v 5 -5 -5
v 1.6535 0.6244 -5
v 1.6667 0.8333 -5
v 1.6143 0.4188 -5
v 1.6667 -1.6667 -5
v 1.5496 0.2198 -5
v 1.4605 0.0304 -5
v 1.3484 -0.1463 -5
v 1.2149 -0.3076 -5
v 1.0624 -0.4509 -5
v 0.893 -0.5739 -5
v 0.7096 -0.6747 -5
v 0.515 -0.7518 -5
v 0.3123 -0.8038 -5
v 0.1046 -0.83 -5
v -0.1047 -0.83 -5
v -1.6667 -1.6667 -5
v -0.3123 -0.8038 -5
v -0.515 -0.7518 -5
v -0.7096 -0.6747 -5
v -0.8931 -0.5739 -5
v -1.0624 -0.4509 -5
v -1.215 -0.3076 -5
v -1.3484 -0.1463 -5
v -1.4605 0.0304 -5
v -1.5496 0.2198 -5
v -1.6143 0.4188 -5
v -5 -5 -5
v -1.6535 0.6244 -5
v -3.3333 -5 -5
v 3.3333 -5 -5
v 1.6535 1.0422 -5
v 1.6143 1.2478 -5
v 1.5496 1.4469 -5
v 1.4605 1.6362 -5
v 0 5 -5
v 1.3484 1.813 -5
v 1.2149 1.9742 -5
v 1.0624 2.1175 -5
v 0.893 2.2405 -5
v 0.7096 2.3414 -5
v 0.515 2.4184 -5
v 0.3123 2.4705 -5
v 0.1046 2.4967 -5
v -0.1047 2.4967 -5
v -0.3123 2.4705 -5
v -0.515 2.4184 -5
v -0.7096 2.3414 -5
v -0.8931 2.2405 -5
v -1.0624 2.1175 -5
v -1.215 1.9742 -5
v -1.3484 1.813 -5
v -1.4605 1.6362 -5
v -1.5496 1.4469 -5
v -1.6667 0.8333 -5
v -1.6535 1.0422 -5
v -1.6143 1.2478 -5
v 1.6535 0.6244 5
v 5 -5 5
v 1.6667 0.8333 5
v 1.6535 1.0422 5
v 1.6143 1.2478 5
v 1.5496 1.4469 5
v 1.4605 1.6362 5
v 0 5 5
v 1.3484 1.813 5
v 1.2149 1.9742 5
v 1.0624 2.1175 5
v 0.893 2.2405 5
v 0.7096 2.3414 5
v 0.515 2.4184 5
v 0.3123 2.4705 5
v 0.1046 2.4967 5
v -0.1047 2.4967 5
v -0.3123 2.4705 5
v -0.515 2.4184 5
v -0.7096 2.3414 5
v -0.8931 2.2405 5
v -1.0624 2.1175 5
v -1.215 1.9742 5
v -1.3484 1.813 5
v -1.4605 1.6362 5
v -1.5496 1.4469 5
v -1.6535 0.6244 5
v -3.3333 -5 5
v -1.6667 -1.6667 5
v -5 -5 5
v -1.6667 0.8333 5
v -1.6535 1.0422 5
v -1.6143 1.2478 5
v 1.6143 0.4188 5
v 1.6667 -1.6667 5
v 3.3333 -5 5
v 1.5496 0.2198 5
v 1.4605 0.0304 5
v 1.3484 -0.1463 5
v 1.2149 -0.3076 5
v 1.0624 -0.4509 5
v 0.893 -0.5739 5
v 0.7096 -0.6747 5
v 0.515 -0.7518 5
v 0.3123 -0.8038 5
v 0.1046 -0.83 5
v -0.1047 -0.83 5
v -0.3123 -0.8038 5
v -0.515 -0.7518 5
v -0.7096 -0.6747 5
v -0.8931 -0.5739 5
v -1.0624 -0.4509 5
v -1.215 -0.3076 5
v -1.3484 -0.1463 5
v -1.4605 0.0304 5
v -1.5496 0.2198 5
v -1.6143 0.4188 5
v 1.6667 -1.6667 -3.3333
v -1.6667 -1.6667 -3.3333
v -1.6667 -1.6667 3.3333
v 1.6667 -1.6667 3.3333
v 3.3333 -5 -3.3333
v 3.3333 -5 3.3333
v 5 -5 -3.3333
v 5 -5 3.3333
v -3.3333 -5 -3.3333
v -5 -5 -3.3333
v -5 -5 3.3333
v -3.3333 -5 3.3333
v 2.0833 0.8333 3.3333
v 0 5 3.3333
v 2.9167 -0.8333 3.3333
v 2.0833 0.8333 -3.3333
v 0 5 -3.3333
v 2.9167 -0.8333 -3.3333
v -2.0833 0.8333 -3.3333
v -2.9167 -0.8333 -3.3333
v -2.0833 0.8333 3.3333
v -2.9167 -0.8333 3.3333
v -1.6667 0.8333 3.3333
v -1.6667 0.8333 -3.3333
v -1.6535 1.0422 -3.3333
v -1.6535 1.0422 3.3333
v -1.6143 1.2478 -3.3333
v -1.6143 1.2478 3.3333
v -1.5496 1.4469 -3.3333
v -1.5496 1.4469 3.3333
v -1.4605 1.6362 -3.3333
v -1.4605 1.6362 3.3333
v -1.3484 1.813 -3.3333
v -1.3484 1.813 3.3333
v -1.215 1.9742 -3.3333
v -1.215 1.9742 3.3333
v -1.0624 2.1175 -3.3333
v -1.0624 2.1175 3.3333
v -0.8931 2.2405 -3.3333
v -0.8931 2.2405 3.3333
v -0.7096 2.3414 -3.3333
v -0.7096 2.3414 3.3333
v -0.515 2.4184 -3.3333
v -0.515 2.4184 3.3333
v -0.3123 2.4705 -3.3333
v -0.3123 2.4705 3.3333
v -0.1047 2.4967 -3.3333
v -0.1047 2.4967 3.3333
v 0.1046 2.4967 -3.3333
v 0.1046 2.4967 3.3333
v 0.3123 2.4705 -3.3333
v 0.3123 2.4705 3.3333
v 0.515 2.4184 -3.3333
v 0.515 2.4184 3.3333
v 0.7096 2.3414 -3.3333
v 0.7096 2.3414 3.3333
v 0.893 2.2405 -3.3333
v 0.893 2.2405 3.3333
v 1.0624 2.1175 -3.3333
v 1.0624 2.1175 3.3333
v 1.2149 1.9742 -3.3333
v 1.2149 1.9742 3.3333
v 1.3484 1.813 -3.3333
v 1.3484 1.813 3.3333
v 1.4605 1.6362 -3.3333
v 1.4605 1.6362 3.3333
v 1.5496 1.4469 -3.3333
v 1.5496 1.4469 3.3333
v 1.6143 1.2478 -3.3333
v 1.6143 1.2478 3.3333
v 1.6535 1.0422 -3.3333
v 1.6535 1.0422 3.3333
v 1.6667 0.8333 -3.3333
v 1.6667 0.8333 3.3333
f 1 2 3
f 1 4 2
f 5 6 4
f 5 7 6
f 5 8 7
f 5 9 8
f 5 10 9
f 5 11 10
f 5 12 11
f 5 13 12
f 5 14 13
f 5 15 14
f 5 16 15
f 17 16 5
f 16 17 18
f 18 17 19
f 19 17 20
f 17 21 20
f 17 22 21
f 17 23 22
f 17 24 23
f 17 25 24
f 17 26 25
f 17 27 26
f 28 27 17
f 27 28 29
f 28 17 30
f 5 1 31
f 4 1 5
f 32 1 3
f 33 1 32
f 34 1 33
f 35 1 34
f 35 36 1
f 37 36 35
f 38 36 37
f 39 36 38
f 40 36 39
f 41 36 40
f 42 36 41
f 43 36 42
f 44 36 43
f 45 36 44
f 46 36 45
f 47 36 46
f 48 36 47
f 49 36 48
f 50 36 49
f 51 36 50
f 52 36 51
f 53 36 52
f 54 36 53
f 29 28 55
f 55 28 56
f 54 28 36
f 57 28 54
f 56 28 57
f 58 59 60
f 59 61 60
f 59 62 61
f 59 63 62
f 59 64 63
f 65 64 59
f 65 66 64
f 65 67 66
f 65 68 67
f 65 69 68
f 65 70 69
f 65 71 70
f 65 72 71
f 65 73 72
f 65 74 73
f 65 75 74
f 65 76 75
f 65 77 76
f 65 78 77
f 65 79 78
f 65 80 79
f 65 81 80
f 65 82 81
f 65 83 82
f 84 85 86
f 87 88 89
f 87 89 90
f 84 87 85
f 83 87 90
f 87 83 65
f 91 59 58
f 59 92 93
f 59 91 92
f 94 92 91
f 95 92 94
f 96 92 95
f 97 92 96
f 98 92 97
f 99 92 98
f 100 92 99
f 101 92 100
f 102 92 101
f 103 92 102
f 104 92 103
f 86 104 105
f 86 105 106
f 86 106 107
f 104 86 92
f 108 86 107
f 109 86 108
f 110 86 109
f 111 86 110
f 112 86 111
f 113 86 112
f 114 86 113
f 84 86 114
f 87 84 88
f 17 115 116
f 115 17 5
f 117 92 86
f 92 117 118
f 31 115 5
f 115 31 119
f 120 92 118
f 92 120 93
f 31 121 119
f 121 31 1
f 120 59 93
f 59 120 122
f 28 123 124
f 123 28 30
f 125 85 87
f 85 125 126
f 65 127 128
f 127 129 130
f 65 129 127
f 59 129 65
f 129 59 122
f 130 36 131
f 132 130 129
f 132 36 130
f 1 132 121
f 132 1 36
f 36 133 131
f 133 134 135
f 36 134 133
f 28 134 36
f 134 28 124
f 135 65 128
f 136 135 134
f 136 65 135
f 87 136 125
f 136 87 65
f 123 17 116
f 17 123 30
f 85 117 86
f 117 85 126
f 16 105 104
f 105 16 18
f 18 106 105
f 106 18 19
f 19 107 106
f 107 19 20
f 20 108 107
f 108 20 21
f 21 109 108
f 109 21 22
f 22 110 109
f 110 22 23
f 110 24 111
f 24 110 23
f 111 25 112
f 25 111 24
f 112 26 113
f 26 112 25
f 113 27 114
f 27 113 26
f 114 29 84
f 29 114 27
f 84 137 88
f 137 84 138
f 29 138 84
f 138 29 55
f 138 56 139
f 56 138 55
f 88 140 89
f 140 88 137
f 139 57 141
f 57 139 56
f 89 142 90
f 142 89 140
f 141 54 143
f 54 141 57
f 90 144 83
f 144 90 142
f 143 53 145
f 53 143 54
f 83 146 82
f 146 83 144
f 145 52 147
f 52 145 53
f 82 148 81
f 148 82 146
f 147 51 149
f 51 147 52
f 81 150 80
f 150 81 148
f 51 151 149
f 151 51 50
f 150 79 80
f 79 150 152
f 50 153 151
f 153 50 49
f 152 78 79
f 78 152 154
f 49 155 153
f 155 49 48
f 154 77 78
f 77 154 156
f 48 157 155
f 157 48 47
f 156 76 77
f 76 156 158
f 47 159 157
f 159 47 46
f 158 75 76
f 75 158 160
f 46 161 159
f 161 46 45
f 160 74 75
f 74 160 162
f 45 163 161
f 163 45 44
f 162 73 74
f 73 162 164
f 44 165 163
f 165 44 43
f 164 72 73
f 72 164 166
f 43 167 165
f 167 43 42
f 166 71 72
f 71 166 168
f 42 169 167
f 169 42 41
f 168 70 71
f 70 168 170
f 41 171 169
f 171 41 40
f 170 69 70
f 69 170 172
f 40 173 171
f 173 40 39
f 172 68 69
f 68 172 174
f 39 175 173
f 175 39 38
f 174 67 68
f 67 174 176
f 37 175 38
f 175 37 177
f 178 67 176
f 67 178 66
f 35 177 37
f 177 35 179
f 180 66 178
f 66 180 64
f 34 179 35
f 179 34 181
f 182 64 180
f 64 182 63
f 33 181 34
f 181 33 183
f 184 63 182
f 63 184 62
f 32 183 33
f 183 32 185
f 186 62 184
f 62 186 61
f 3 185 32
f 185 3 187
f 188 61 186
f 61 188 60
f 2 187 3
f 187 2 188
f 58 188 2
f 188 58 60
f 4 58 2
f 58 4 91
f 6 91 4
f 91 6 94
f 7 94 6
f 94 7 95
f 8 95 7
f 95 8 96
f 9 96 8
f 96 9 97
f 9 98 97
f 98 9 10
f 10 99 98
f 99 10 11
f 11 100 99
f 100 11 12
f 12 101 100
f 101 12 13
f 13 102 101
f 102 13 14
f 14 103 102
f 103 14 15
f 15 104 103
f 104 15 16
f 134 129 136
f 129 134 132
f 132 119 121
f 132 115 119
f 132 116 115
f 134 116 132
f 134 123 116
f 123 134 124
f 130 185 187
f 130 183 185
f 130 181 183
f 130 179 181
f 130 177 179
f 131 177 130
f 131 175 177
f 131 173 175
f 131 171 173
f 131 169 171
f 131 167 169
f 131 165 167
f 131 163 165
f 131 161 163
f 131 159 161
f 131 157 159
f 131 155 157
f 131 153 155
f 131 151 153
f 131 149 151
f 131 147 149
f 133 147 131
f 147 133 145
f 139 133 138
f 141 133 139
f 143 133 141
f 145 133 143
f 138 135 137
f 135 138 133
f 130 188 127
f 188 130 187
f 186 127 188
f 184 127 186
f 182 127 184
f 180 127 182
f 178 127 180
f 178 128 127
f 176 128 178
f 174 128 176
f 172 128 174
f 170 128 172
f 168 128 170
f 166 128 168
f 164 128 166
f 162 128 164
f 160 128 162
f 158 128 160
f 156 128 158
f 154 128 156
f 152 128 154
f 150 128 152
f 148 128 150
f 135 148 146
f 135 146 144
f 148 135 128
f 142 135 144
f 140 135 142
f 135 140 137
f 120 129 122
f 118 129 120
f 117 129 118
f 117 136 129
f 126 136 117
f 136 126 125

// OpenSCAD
// Generated by SolidPython 1.1.3 on 2025-02-25 01:33:36
$fn=50;


intersection() {
	translate(v = [-5.0000000000, -5.0000000000, -5.0000000000]) {
		linear_extrude(height = 10) {
			difference() {
				polygon(points = [[0, 0], [5.0000000000, 10], [10, 0], [8.3333333333, 0], [6.6666666667, 3.3333333333], [3.3333333333, 3.3333333333], [1.6666666667, 0]]);
				translate(v = [5.0000000000, 5.8333333333]) {
					circle(r = 1.6666666667);
				}
			}
		}
	}
	rotate(a = 90, v = [0, 1, 0]) {
		translate(v = [-5.0000000000, -5.0000000000, -5.0000000000]) {
			linear_extrude(height = 10) {
				polygon(points = [[0, 0], [0, 10], [1.6666666667, 10], [1.6666666667, 5.8333333333], [8.3333333333, 5.8333333333], [8.3333333333, 10], [10, 10], [10, 0], [8.3333333333, 0], [8.3333333333, 4.1666666667], [1.6666666667, 4.1666666667], [1.6666666667, 0]]);
			}
		}
	}
}
/***********************************************
*********      SolidPython code:      **********
************************************************
 
from solid import *
from solid.utils import *

import math
import matplotlib.pyplot as plt
import subprocess
import os
import grok_letters as grok
import grok_think as grok_think
import letters as let
import o1_letters as o1

def arc_points(radius, start_angle, end_angle, center=[0,0], num_points=50):
    angles = [start_angle + i * (end_angle - start_angle) / (num_points - 1)
              for i in range(num_points)]
    points = [
        (center[0] + radius * math.cos(math.radians(angle)),
         center[1] + radius * math.sin(math.radians(angle)))
        for angle in angles
    ]
    return points

class Hole:
    def __init__(self, radius, x, y):
        """
        Hole defined by:
        :param x: x dimension for center point of the circle as a ratio of letter height
        :param y: y dimension for center point of the circle as a ratio of letter height
        :param radius: radius of circle as a ratio of letter height
        """
        self.x = x
        self.y = y
        self.radius = radius

class Letter2D:
    def __init__(self, letter, scale):
        self.letter = letter
        self.scale = scale
        self.shape = self.generate()
    
    def get_letter_points(self):
        points = getattr(let, self.letter)
        # points = getattr(o1, self.letter)
        # points = getattr(grok, self.letter)
        scaled_points = [(point[0] * self.scale, point[1] * self.scale) for point in points]
        return scaled_points

    def get_letter_holes(self):
        holes = []
        if self.letter == "A": 
            holes = [Hole(1/6, 1/2, 7/12)]
        if self.letter == "B":
            holes = [Hole(1/6, 1/2, 3/4), Hole(1/6, 1/2, 1/4)]
        if self.letter == "D":
            holes = [Hole(1/3, 1/2, 1/2)]

        scaled_holes = [Hole(hole.radius*self.scale, hole.x*self.scale, hole.y*self.scale) for hole in holes]
        return scaled_holes

    
    def generate(self):
        shape = polygon(points=self.get_letter_points())
        holes = self.get_letter_holes()

        if holes:
            for hole in holes:
                circle_hole = circle(r=hole.radius)
                positioned_hole = translate([hole.x, hole.y])(circle_hole)
                shape = difference()(shape, positioned_hole)
        return shape
    

    def render(self):
        scad_render_to_file(self.shape, f"output/{self.name}.scad", file_header='$fn=50;')
        subprocess.run(["C:\\Program Files\\OpenSCAD\\openscad.exe", "-o", f"output\\{self.name}.stl", f"output\\{self.name}.scad"])


class TwoLetter3D:
    def __init__(self, height, letterA, letterB=None):
        self.height = height
        self.letterA = letterA
        self.letterB = letterB
    

    def generate_3d_letter(self, letter):
        letter = letter.upper()
        # TODO: add catch here for is letter is not a letter
        shape = Letter2D(letter, self.height).generate()
        shape_3d = linear_extrude(height=self.height)(shape)
        centered_shape_3d = translate([-self.height/2, -self.height/2, -self.height/2])(shape_3d)
        return centered_shape_3d


    def render(self):
        letterA3D = self.generate_3d_letter(self.letterA)

        if self.letterB:
            letterB3D = self.generate_3d_letter(self.letterB)
            letterB3D = rotate(a=90, v=[0,1,0])(letterB3D)

            combined = intersection()(letterA3D, letterB3D)
            file_name = self.letterA + self.letterB
            scad_render_to_file(combined, f"output/{file_name}.scad", file_header='$fn=50;')
            subprocess.run(["C:\\Program Files\\OpenSCAD\\openscad.exe", "-o", f"output\\{file_name}.stl", f"output\\{file_name}.scad"])
            return
        else:
            # file_name = "o1_" + self.letterA
            # file_name = "grok_think_" + self.letterA
            file_name = self.letterA
            # file_name = "grok_" + self.letterA
            scad_render_to_file(letterA3D, f"output/{file_name}.scad", file_header='$fn=50;')
            subprocess.run(["C:\\Program Files\\OpenSCAD\\openscad.exe", "-o", f"output\\{file_name}.stl", f"output\\{file_name}.scad"])
            # subprocess.run(["openscad", "-o", f"output\\{file_name}.png", f"output\\{file_name}.scad", "--imgsize=800,600", "--autocenter"])
            subprocess.run(["openscad", "-o", f"output\\{file_name}.png", f"output\\{file_name}.scad", "--imgsize=800,600", "--camera=0,0,30,0,0,0", "--viewall", "--autocenter", "--projection=o"])
            os.remove(f"output/{file_name}.scad")
            return
                


if __name__ == "__main__":
    os.makedirs("output", exist_ok=True)

    # # Generate a letter
    # letter = input()
    # shape = TwoLetter3D(10, letter)
    # shape.render()
    
    letters = [chr(x) for x in range(ord('A'), ord('j') + 1)]

    # Generate all combos
    for letter in letters:
        for other_letter in letters:
            shape = TwoLetter3D(10, letter, other_letter)
            shape.render()

    # # Generate all letters
    # for letter in letters:
    #     shape = TwoLetter3D(10, letter)
    #     shape.render()
 
 
************************************************/
